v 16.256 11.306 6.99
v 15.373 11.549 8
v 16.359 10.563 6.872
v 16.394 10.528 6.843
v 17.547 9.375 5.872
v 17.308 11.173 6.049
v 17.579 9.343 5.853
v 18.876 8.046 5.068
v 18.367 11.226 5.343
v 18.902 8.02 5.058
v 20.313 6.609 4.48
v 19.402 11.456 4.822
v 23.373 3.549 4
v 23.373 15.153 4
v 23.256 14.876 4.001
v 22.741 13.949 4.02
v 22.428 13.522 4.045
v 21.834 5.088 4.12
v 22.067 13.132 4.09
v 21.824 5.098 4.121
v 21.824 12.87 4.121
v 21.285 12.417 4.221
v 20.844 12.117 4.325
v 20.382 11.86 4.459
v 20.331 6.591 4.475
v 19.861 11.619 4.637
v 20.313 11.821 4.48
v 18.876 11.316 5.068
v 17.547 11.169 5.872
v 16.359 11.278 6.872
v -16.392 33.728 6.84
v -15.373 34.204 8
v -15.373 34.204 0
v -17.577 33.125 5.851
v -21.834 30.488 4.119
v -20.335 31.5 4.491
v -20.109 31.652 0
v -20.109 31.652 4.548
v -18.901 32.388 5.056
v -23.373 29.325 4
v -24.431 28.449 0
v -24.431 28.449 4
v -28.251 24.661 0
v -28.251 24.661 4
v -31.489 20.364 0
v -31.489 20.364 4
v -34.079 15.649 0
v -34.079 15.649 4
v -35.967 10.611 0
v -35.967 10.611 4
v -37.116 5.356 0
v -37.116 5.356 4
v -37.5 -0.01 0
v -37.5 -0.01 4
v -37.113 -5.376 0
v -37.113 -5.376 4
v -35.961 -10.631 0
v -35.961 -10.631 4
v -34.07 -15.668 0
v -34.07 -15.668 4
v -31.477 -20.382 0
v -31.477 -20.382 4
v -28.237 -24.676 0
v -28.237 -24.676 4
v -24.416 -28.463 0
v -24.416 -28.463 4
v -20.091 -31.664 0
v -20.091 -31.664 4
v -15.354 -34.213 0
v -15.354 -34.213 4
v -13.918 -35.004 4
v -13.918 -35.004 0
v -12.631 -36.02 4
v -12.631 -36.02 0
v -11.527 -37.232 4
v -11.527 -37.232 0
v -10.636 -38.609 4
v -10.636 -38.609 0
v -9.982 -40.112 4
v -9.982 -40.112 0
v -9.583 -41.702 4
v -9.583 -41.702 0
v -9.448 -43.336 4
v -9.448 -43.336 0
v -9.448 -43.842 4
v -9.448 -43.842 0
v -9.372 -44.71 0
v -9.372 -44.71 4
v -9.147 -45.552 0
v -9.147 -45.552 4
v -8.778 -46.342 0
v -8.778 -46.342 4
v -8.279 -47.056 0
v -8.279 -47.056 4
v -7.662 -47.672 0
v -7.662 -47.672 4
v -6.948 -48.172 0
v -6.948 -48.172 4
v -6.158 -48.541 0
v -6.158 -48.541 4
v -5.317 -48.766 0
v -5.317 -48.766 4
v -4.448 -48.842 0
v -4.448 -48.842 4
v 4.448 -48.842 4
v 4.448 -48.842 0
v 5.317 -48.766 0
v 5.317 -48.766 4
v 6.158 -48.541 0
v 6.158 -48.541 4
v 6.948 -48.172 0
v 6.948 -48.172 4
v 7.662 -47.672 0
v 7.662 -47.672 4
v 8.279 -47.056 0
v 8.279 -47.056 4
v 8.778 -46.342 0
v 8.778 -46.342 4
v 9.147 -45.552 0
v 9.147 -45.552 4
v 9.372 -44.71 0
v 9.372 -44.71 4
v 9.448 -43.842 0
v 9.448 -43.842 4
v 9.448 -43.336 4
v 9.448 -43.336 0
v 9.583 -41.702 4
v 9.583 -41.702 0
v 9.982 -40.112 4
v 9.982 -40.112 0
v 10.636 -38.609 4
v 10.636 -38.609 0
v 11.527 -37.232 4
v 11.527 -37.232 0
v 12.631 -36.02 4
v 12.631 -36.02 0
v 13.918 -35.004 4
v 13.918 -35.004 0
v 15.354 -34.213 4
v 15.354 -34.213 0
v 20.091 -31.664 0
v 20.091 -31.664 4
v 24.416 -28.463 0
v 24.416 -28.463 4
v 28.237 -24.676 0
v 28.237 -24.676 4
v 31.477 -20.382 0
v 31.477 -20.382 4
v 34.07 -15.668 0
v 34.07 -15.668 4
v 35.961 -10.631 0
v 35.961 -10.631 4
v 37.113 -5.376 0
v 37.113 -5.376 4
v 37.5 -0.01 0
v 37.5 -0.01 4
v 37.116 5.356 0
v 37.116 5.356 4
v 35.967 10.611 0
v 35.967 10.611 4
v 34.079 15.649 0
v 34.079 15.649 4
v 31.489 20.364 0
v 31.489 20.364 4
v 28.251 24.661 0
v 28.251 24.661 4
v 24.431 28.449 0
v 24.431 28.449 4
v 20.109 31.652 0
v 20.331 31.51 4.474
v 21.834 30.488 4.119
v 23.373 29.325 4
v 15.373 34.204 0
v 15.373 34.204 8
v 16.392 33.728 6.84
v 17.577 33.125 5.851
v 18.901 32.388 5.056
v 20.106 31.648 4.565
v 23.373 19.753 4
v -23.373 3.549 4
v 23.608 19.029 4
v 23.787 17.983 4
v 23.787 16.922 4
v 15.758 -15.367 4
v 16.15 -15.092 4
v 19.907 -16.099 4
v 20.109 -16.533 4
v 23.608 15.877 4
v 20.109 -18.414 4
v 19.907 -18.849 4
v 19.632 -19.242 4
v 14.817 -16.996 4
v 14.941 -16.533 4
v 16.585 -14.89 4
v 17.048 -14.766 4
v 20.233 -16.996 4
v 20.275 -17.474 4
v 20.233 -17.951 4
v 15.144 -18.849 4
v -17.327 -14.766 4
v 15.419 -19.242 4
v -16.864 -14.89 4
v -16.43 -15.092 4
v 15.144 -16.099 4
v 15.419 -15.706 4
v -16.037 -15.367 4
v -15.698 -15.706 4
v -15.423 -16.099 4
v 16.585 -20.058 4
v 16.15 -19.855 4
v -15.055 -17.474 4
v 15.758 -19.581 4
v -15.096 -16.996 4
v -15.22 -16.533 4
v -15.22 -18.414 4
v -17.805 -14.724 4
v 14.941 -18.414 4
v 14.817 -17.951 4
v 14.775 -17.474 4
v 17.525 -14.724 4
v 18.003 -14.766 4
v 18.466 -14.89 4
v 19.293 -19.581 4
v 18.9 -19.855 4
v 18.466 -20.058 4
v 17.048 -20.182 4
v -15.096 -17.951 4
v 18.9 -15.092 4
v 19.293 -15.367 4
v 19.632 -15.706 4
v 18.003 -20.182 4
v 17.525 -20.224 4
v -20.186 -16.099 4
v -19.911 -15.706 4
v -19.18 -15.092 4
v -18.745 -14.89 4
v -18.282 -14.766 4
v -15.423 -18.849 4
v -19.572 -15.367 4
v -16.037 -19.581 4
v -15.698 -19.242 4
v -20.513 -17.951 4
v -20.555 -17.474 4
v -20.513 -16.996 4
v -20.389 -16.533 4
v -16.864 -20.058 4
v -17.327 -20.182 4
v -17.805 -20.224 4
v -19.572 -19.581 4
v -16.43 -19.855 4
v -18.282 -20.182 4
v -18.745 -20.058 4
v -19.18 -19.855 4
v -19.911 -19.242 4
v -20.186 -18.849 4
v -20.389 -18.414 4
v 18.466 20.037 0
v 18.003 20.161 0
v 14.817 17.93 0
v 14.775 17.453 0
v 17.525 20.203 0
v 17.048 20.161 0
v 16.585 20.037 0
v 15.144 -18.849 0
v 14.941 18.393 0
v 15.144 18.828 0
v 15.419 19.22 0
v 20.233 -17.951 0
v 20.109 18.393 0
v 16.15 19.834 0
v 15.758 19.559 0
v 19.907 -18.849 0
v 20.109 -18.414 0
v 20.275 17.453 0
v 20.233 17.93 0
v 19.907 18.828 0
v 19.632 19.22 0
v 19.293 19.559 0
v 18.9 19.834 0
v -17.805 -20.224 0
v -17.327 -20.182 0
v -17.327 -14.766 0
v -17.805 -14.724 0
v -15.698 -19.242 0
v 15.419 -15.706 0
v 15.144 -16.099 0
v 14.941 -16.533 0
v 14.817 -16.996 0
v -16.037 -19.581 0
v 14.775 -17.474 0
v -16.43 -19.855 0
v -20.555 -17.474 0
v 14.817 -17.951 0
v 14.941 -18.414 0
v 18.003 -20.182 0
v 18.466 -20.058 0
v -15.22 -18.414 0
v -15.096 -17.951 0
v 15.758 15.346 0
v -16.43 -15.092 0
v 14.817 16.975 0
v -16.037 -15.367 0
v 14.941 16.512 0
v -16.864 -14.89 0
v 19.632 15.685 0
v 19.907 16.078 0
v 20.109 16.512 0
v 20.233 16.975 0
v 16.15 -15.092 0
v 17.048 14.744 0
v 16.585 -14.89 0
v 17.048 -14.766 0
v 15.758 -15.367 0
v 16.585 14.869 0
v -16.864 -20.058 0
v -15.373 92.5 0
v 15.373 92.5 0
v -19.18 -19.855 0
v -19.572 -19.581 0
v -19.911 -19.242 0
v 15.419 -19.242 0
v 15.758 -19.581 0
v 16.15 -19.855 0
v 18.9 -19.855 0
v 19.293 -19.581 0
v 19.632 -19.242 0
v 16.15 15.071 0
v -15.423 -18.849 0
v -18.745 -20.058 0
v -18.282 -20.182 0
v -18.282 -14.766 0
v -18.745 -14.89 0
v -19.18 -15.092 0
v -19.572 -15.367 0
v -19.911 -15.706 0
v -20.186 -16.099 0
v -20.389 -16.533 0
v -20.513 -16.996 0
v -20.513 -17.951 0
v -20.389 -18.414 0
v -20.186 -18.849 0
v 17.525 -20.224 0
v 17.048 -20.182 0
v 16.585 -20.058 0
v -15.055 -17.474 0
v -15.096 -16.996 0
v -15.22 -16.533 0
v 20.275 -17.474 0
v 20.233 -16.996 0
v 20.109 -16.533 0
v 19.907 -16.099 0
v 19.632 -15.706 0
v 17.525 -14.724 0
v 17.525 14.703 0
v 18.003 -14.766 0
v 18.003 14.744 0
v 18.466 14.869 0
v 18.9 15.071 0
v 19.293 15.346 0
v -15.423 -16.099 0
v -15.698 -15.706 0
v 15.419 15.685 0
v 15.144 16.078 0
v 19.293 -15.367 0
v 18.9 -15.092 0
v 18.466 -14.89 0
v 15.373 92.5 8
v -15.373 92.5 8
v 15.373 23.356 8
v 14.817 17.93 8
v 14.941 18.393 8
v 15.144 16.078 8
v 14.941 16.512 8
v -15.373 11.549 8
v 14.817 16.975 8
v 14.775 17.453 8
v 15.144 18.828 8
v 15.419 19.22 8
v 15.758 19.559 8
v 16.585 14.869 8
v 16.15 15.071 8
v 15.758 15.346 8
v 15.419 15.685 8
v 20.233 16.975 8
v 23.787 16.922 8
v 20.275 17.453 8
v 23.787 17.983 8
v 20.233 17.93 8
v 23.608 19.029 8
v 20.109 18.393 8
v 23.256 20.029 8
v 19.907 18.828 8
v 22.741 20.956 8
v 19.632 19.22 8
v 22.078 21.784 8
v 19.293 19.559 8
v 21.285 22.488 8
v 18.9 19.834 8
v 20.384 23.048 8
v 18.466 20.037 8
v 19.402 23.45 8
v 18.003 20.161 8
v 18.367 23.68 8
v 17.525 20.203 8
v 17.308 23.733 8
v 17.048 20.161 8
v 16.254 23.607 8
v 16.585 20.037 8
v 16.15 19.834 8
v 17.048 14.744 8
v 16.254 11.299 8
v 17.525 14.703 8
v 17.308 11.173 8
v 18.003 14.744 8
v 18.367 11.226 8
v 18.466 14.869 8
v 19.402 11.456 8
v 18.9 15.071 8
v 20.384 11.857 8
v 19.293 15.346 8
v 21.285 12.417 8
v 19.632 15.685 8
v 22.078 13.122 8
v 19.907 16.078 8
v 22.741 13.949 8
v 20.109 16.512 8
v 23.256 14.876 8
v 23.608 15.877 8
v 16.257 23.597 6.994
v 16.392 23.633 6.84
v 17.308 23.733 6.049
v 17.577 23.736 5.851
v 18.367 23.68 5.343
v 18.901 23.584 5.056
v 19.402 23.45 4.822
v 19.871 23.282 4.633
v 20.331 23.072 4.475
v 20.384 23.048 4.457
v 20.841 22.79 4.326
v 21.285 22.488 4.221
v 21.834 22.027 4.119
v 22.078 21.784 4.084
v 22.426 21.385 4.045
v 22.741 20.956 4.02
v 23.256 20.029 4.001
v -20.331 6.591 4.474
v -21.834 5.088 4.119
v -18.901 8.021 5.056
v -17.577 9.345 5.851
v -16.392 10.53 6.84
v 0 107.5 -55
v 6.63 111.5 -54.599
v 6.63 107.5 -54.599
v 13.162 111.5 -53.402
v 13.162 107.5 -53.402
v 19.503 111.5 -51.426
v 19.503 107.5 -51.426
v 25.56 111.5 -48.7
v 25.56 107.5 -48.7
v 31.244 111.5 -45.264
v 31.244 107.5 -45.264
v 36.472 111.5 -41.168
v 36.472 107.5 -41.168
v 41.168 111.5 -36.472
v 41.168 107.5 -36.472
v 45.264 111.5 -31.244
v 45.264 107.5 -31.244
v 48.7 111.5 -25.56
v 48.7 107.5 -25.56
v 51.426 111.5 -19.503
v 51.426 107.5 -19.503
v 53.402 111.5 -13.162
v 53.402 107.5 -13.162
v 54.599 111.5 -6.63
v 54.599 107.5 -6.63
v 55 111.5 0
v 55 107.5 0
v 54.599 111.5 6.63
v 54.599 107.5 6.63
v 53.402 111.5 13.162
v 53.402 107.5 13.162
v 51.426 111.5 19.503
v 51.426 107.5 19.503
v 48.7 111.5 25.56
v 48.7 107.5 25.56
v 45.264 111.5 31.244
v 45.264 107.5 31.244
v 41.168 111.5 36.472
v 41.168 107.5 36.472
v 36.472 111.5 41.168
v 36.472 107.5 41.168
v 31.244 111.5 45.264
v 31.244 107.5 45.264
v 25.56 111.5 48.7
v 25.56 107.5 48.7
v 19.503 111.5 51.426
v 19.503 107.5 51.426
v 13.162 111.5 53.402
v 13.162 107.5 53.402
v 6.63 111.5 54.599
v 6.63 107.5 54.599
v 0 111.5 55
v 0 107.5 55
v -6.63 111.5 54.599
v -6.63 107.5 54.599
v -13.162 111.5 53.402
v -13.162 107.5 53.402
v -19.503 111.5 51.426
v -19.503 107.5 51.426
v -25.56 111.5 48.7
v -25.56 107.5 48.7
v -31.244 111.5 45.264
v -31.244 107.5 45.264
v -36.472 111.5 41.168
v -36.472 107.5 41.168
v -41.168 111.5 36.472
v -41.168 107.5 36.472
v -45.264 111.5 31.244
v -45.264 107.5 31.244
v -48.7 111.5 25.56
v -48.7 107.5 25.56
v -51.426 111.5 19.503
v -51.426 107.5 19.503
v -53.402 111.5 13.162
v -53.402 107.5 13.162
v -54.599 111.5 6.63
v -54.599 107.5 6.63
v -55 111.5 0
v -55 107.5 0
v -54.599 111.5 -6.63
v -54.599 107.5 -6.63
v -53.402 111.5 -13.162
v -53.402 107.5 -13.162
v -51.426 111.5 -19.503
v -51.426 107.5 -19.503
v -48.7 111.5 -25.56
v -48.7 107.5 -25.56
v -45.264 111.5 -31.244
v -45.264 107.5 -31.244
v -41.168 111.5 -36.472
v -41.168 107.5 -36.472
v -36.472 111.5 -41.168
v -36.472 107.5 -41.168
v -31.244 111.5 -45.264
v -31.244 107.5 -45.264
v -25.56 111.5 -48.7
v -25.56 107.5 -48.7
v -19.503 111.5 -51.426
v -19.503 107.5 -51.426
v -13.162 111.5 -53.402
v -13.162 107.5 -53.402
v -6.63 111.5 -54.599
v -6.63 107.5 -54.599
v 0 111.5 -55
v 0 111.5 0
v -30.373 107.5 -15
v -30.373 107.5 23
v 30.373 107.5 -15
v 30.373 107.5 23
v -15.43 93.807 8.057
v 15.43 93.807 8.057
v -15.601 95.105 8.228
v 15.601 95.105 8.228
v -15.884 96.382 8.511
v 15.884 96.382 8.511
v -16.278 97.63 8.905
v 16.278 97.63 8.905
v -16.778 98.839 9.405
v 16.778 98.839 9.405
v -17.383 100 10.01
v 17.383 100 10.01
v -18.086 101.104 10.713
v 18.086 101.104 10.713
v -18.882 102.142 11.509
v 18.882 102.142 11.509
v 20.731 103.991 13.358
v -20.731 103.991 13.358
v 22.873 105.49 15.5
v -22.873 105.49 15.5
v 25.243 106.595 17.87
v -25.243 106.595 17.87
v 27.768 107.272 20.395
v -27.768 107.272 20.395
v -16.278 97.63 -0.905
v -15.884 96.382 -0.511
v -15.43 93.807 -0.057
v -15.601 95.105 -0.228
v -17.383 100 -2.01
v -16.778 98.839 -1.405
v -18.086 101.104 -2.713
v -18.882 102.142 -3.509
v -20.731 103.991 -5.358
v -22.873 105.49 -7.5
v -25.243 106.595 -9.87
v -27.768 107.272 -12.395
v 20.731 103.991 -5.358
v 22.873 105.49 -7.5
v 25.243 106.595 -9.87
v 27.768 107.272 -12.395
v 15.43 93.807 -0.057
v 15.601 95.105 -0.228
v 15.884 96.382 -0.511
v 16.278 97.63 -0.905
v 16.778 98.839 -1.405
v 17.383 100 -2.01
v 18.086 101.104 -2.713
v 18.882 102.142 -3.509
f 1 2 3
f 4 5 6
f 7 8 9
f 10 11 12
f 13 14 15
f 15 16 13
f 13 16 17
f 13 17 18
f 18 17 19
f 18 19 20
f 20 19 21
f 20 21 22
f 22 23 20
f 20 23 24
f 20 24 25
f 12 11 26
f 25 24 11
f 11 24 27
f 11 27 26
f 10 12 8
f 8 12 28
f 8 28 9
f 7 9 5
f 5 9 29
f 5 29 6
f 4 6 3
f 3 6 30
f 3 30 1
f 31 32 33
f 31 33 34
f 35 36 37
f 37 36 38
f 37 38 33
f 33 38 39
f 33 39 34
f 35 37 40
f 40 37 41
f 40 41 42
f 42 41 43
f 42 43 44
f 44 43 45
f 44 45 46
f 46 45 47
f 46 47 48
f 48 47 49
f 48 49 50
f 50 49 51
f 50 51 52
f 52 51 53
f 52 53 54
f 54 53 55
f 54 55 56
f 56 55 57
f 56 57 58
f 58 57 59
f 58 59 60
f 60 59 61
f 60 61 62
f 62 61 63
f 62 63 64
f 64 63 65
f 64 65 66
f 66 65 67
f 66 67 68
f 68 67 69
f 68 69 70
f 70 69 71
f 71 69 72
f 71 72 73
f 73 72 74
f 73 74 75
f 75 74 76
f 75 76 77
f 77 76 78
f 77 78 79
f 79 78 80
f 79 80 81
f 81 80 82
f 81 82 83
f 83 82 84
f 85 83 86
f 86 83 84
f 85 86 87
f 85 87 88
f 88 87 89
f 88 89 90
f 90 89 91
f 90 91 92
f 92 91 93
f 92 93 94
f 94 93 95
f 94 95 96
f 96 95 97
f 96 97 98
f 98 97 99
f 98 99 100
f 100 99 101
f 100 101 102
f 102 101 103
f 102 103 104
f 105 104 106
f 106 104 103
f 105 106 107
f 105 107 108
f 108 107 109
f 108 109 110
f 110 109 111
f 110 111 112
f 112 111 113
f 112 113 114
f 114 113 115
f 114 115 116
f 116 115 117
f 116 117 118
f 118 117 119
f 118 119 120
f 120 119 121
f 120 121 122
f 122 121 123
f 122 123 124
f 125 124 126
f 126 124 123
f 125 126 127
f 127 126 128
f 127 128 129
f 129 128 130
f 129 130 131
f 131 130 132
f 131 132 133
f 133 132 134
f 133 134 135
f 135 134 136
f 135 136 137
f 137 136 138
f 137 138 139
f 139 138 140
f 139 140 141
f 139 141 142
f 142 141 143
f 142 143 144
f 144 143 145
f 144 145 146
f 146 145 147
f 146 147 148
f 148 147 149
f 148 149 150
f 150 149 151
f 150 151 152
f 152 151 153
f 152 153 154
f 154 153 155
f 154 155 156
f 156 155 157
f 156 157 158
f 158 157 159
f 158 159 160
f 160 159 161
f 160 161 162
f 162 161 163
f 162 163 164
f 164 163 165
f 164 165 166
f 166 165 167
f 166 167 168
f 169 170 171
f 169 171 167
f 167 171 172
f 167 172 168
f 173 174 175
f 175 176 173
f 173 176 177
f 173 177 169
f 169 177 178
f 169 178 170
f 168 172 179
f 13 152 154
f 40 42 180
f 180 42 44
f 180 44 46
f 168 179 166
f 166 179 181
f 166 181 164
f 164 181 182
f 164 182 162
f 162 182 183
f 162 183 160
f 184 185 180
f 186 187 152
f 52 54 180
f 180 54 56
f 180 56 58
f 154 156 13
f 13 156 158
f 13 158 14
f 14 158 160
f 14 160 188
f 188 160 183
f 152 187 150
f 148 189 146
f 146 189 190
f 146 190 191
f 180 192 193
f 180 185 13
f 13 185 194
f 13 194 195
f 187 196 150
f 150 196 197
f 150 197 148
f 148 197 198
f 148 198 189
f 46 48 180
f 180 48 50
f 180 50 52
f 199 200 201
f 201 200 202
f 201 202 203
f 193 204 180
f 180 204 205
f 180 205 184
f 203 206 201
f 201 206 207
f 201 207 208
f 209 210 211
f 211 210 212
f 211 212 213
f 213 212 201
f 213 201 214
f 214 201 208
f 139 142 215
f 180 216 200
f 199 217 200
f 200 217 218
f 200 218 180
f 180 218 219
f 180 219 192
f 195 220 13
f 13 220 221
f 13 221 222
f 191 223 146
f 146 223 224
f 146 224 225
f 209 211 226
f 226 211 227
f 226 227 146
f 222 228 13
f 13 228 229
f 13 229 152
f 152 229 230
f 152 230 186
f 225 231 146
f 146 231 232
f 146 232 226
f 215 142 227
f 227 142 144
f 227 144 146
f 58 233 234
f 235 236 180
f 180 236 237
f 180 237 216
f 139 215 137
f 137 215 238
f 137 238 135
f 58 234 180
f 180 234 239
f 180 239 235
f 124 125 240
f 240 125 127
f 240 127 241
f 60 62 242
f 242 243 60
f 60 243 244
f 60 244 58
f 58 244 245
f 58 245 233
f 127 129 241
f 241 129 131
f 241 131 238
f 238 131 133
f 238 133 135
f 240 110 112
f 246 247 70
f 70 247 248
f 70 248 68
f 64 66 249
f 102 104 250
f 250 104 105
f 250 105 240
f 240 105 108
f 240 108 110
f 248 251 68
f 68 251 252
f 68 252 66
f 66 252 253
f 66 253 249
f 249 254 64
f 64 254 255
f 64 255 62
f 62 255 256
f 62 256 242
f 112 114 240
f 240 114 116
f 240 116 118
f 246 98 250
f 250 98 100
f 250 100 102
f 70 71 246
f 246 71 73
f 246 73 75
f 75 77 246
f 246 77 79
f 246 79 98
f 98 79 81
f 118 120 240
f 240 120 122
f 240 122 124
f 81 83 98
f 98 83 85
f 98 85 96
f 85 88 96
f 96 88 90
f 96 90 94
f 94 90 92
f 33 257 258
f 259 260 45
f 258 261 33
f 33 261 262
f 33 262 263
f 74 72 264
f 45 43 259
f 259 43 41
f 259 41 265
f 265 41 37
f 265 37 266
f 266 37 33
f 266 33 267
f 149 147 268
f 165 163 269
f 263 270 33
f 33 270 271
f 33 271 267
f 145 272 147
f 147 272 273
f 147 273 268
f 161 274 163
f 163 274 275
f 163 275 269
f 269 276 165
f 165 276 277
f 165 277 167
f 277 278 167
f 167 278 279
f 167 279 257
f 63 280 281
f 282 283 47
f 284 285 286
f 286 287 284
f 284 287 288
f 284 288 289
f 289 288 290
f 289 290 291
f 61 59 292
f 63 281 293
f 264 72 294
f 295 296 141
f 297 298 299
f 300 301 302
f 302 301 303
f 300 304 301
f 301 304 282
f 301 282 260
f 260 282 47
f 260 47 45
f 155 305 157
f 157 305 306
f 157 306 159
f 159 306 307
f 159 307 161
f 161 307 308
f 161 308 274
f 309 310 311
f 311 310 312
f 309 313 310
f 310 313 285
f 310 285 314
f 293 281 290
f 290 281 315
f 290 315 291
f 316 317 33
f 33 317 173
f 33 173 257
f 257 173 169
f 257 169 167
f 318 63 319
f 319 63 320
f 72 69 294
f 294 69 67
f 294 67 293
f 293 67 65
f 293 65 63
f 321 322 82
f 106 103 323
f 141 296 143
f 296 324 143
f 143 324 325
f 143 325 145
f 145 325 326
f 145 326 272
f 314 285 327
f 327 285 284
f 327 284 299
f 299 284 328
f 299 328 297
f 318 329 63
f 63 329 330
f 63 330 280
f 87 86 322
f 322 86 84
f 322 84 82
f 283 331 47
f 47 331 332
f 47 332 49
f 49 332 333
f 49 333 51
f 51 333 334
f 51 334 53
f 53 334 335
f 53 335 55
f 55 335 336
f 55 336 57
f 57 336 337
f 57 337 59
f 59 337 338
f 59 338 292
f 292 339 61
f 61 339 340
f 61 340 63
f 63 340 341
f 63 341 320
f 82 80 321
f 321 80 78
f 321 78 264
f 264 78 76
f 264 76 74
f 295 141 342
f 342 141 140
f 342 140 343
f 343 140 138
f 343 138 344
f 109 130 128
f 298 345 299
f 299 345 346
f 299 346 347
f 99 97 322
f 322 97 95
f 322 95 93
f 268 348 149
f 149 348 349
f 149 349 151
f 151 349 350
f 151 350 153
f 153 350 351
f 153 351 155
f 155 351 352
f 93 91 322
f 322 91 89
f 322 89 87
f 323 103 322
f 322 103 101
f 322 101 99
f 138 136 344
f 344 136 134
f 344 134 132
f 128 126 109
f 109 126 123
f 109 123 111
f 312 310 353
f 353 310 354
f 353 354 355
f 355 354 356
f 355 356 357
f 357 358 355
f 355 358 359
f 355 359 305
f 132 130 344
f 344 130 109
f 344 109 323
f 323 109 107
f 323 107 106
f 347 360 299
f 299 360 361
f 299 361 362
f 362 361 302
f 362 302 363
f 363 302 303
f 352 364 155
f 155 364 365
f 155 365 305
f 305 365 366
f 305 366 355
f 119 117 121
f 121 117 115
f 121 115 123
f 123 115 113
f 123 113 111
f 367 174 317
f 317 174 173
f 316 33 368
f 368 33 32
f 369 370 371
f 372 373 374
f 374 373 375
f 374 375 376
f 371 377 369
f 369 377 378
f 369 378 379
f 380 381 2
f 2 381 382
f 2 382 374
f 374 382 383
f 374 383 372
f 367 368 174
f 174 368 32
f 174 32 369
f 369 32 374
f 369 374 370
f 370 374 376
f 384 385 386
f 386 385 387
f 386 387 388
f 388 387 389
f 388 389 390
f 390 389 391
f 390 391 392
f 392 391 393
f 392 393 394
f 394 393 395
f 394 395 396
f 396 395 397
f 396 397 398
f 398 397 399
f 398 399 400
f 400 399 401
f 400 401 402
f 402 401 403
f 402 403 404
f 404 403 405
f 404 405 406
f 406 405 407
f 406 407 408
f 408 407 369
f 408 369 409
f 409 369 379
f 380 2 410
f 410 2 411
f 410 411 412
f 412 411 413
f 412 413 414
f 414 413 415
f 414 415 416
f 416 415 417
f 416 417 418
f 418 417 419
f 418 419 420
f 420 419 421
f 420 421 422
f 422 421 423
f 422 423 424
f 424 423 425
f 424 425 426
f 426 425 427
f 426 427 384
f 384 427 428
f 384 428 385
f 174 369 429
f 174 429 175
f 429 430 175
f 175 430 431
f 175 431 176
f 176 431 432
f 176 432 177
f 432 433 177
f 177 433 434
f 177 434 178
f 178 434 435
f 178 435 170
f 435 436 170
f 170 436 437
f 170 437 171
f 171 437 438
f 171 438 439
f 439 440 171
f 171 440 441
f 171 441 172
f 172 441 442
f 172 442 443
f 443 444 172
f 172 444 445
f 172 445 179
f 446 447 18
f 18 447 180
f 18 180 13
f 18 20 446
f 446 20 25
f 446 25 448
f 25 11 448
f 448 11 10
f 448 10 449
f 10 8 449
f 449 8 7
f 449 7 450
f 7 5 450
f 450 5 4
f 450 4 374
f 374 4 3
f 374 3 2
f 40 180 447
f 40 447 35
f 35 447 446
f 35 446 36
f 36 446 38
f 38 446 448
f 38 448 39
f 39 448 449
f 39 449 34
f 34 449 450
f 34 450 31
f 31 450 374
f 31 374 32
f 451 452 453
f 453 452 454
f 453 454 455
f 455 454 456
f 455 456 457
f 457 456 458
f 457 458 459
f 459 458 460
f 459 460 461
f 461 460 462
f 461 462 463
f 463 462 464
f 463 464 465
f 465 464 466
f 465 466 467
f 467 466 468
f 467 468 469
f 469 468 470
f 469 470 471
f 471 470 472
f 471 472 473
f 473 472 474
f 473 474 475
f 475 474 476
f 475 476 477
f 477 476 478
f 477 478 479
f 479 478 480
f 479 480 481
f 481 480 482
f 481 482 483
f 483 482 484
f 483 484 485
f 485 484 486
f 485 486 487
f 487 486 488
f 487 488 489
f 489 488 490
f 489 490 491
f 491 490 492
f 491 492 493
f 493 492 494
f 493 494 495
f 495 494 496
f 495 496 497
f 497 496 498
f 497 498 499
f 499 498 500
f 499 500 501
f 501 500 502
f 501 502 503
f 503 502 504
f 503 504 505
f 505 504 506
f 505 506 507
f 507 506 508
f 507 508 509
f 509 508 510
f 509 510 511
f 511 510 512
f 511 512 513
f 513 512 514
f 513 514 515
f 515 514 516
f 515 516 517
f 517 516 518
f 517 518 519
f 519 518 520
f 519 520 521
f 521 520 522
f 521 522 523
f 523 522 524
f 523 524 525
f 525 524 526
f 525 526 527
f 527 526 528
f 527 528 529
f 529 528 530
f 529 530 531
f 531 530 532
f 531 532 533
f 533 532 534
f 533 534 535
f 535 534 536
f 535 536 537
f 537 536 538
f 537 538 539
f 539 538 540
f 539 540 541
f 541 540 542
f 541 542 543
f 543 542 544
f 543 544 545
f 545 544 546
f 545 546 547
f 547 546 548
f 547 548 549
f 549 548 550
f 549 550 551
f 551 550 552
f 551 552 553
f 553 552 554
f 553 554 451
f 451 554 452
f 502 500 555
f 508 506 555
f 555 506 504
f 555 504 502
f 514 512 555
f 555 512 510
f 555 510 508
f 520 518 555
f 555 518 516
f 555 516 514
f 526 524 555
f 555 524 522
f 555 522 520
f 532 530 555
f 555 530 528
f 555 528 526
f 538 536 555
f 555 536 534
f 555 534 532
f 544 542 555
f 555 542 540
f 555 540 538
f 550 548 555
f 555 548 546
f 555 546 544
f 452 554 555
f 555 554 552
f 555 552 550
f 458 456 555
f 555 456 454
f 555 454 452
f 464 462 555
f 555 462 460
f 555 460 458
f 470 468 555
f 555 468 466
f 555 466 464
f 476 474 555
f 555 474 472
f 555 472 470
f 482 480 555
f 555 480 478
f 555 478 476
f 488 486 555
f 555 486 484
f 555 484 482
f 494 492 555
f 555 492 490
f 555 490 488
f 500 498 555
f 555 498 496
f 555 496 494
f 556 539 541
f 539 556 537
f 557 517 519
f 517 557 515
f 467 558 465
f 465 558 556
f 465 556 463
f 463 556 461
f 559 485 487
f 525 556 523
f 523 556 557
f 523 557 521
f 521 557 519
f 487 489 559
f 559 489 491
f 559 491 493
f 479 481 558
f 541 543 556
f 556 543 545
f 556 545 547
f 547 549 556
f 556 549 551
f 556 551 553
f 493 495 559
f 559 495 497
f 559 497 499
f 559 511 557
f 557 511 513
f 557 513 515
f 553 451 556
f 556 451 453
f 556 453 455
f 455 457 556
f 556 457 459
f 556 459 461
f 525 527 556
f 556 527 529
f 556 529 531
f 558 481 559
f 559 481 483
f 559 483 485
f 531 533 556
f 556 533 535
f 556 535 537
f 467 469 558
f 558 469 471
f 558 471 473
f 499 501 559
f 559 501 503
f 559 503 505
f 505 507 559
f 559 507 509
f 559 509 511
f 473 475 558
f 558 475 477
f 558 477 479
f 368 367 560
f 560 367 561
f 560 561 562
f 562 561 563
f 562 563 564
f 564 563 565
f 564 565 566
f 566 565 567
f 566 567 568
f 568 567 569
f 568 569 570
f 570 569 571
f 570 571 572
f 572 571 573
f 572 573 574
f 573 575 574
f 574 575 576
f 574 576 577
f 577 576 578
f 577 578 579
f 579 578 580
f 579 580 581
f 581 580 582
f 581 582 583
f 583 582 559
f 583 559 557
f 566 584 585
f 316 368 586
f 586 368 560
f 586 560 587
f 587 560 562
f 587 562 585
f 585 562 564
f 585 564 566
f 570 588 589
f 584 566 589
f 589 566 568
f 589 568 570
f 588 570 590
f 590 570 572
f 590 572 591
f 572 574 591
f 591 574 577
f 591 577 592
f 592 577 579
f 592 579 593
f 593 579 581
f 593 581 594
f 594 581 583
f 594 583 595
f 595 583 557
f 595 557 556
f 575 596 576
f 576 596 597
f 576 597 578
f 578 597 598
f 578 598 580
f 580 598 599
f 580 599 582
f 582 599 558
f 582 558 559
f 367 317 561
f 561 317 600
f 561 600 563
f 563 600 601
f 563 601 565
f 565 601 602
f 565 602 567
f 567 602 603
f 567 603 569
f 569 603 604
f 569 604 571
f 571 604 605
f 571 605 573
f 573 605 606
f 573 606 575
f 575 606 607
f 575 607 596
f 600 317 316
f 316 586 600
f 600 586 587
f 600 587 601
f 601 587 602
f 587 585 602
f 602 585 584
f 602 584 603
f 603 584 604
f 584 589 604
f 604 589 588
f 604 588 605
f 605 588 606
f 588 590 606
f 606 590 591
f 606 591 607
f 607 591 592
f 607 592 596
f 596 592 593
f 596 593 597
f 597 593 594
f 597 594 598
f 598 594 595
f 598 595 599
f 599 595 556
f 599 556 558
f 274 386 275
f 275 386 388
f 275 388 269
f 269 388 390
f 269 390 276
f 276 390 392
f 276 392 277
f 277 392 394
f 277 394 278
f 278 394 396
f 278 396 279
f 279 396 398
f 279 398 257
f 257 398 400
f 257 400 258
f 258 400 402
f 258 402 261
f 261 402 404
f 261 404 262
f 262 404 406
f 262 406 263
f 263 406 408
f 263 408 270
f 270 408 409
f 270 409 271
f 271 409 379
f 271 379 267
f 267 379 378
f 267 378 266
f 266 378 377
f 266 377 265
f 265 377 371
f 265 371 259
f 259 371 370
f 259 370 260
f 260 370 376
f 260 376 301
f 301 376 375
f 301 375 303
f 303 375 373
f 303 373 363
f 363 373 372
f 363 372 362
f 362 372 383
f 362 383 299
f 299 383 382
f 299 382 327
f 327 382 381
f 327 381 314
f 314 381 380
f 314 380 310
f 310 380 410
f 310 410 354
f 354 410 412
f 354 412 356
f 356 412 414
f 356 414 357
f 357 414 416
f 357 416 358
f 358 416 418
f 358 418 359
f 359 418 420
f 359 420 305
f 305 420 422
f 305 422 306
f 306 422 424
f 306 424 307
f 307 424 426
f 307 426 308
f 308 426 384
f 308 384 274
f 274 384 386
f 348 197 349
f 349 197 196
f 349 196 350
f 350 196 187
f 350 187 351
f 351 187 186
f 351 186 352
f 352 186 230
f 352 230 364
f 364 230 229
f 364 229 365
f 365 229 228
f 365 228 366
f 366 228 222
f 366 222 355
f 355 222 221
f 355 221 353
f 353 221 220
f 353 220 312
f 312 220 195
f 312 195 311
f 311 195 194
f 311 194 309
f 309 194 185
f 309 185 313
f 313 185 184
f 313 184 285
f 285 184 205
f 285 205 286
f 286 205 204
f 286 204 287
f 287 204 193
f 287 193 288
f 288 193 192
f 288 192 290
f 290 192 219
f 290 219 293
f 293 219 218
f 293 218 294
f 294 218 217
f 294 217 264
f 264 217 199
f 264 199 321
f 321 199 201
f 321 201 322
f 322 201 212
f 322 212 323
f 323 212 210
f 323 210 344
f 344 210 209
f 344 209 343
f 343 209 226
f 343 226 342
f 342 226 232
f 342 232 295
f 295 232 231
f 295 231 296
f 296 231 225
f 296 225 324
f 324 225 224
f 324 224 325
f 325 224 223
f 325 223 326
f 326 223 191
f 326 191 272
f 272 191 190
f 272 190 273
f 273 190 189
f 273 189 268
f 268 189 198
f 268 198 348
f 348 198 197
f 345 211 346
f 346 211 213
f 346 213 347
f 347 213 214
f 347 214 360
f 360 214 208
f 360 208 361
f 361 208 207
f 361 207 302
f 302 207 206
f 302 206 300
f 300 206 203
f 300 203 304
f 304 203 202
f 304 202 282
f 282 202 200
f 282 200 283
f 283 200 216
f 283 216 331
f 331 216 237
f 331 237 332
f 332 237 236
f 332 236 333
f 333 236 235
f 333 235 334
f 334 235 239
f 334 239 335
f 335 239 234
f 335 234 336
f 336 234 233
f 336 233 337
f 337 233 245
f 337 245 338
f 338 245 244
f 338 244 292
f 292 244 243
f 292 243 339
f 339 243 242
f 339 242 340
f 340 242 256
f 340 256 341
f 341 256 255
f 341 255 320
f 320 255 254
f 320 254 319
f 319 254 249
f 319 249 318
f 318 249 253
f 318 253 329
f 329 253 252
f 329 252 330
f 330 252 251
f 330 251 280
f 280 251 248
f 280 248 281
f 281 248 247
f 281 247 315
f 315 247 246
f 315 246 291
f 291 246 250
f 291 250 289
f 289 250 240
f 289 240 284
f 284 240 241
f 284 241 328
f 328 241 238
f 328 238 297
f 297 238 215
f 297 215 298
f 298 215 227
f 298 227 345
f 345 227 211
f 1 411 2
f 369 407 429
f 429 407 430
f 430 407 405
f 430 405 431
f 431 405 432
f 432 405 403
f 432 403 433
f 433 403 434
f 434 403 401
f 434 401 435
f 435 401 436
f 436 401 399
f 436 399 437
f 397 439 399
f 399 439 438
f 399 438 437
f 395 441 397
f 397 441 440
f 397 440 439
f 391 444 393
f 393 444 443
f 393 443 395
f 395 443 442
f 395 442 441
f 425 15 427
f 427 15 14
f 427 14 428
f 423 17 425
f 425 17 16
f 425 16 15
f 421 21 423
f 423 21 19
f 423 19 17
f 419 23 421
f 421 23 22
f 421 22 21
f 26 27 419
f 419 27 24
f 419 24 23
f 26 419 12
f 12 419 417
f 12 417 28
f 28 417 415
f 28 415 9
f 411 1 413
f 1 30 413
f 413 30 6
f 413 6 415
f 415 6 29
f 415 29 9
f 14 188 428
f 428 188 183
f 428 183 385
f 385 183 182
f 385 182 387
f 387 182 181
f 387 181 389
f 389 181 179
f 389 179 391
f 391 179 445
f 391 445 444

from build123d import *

# Parameters (mm, degrees)
BOSS_EXTRUDE2_DEPTH             = 4
BOSS_EXTRUDE3_DEPTH             = 4
BOSS_EXTRUDE3_DIRECTION_2_REACH = 63.707
FILLET1_R                       = 10
SKETCH4_R                       = 55
BOSS_EXTRUDE4_DEPTH             = 4
FILLET2_R                       = 15
CUT_EXTRUDE1_DEPTH              = 136.949439131
CUT_EXTRUDE1_DEPTH_BACK         = 136.949439131
SKETCH2_4_R                     = 2.75
BOSS_EXTRUDE5_START             = -4
SKETCH5_R                       = 6.283783871
SKETCH5_R_2                     = 2.75
BOSS_EXTRUDE5_DEPTH             = 4


with BuildPart() as part:
    # Sketch2 → Boss-Extrude2 (new body)
    with BuildSketch(Plane.XY):
        with BuildLine():
            Line((-9.448282852, -43.336062282), (-9.448282852, -43.842083491))
            ThreePointArc((-9.448282852, -43.842083491), (-7.983816758, -47.377617397), (-4.448282852, -48.842083491))
            Line((-4.448282852, -48.842083491), (4.448282796, -48.842083491))
            ThreePointArc((4.448282796, -48.842083491), (7.983816702, -47.377617397), (9.448282796, -43.842083491))
            Line((9.448282796, -43.842083491), (9.448282796, -43.336062307))
            ThreePointArc((9.448282796, -43.336062307), (11.053529874, -37.902083712), (15.353907471, -34.212680769))
            ThreePointArc((15.353907471, -34.212680769), (2.4e-08, 37.5), (-15.353907514, -34.212680749))
            ThreePointArc((-15.353907514, -34.212680749), (-11.053529926, -37.902083692), (-9.448282852, -43.336062282))
        make_face()
    extrude(amount=BOSS_EXTRUDE2_DEPTH)

    # Sketch3 → Boss-Extrude3 (add)
    with BuildSketch(Plane.XY.offset(4)):
        with BuildLine():
            Line((-15.37292341, 11.548994525), (15.372923459, 11.548994525))
            Line((15.372923459, 11.548994525), (15.372923459, 34.204140456))
            ThreePointArc((15.372923459, 34.204140456), (2.6e-08, 37.5), (-15.37292341, 34.204140478))
            Line((-15.37292341, 34.204140478), (-15.37292341, 11.548994525))
        make_face()
        with BuildLine():
            ThreePointArc((-15.37292341, 34.204140478), (2.6e-08, 37.5), (15.372923459, 34.204140456))
            Line((15.372923459, 34.204140456), (15.372923459, 107.5))
            Line((15.372923459, 107.5), (-15.37292341, 107.5))
            Line((-15.37292341, 107.5), (-15.37292341, 34.204140478))
        make_face()
    extrude(amount=BOSS_EXTRUDE3_DEPTH)

    # Boss-Extrude3 direction 2: up to this face of the body (flat: up to its plane)
    boss_extrude3_direction_2_end = Plane(part.part.faces().sort_by_distance((-1e-09, -2.077742583, 0))[0])
    # Sketch3 → Boss-Extrude3 direction 2 (add, up to the picked face)
    with BuildSketch(Plane.XY.offset(4), mode=Mode.PRIVATE) as boss_extrude3_direction_2_sk1:
        with BuildLine():
            Line((-15.37292341, 11.548994525), (15.372923459, 11.548994525))
            Line((15.372923459, 11.548994525), (15.372923459, 34.204140456))
            ThreePointArc((15.372923459, 34.204140456), (2.6e-08, 37.5), (-15.37292341, 34.204140478))
            Line((-15.37292341, 34.204140478), (-15.37292341, 11.548994525))
        make_face()
    boss_extrude3_direction_2_tool1 = split(extrude(boss_extrude3_direction_2_sk1.sketch, amount=-BOSS_EXTRUDE3_DIRECTION_2_REACH, mode=Mode.PRIVATE), bisect_by=boss_extrude3_direction_2_end, keep=Keep.BOTH, mode=Mode.PRIVATE)
    # Sketch3 → Boss-Extrude3 direction 2 (add, up to the picked face)
    with BuildSketch(Plane.XY.offset(4), mode=Mode.PRIVATE) as boss_extrude3_direction_2_sk2:
        with BuildLine():
            ThreePointArc((-15.37292341, 34.204140478), (2.6e-08, 37.5), (15.372923459, 34.204140456))
            Line((15.372923459, 34.204140456), (15.372923459, 107.5))
            Line((15.372923459, 107.5), (-15.37292341, 107.5))
            Line((-15.37292341, 107.5), (-15.37292341, 34.204140478))
        make_face()
    boss_extrude3_direction_2_tool2 = split(extrude(boss_extrude3_direction_2_sk2.sketch, amount=-BOSS_EXTRUDE3_DIRECTION_2_REACH, mode=Mode.PRIVATE), bisect_by=boss_extrude3_direction_2_end, keep=Keep.BOTH, mode=Mode.PRIVATE)
    add(boss_extrude3_direction_2_tool1.solids().sort_by(Axis((0, 24.004369, 4), (0, 0, -1)))[0])
    add(boss_extrude3_direction_2_tool2.solids().sort_by(Axis((0, 71.954024, 4), (0, 0, -1)))[0])

    # Fillet1
    # the kernel refuses this fillet: 10 mm, written as the material it adds along each edge
    with BuildSketch(Plane(origin=(-15.37292341, 54.204140478, 4), x_dir=(-1, 0, 0), z_dir=(0, -1, 0))) as fillet1_piece_1_section:
        with BuildLine():
            CenterArc((8, -10), FILLET1_R, 90, 53.130102354)
            Line((0, -4), (-0.16, -3.88))
            ThreePointArc((-0.16, -3.88), (-0.2, -2), (-0.2, 0))
            Line((-0.2, 0), (0, 0.2))
            Line((0, 0.2), (8, 0.2))
            Line((8, 0.2), (8, 0))
        make_face()
    fillet1_piece_1 = extrude(amount=42.655145953, mode=Mode.PRIVATE)
    fillet1_piece_1 = fillet1_piece_1 & Plane(origin=(0, 0, 5.050776903), x_dir=(0.4094375325494367, -0.9123381538332315, 0), z_dir=(0, 0, -1)) * Cylinder(37.5, 118, mode=Mode.PRIVATE)
    add(fillet1_piece_1)
    with BuildSketch(Plane(origin=(-15.37292341, 11.548994525, 4), x_dir=(0, -1, 0), z_dir=(1, 0, 0))) as fillet1_piece_2:
        with BuildLine():
            CenterArc((8, -10), FILLET1_R, 90, 53.130102354)
            Line((0, -4), (-0.16, -3.88))
            ThreePointArc((-0.16, -3.88), (-0.2, -2), (-0.2, 0))
            Line((-0.2, 0), (0, 0.2))
            Line((0, 0.2), (8, 0.2))
            Line((8, 0.2), (8, 0))
        make_face()
    extrude(amount=30.745846869)
    with BuildSketch(Plane(origin=(15.372923459, 54.204140456, 4), x_dir=(1, 0, 0), z_dir=(0, -1, 0))) as fillet1_piece_3_section:
        with BuildLine():
            CenterArc((8, 10), FILLET1_R, 216.869897646, 53.130102354)
            Line((0, 4), (-0.16, 3.88))
            ThreePointArc((-0.16, 3.88), (-0.2, 2), (-0.2, 0))
            Line((-0.2, 0), (0, -0.2))
            Line((0, -0.2), (8, -0.2))
            Line((8, -0.2), (8, 0))
        make_face()
    fillet1_piece_3 = extrude(amount=42.655145931, mode=Mode.PRIVATE)
    fillet1_piece_3 = fillet1_piece_3 & Plane(origin=(0, 0, 5.050777143), x_dir=(0.4094375325494367, -0.9123381538332315, 0), z_dir=(0, 0, -1)) * Cylinder(37.5, 118, mode=Mode.PRIVATE)
    add(fillet1_piece_3)
    with BuildSketch(Plane(origin=(-15.37292341, 54.204140478, 4), x_dir=(-1, 0, 0), z_dir=(0, -1, 0))) as fillet1_piece_4a_section:
        with BuildLine():
            CenterArc((8, -10), FILLET1_R, 90, 53.130102354)
            Line((0, -4), (-0.16, -3.88))
            ThreePointArc((-0.16, -3.88), (-0.2, -2), (-0.2, 0))
            Line((-0.2, 0), (0, 0.2))
            Line((0, 0.2), (8, 0.2))
            Line((8, 0.2), (8, 0))
        make_face()
    fillet1_piece_4a = extrude(amount=62.655145953, mode=Mode.PRIVATE)
    fillet1_piece_4a = split(fillet1_piece_4a, bisect_by=Plane(origin=(-17.431757525, 11.548994525, 5.023885124), z_dir=(0, -1, 0)), keep=Keep.TOP, mode=Mode.PRIVATE)
    with BuildSketch(Plane(origin=(-35.37292341, 11.548994525, 4), x_dir=(0, -1, 0), z_dir=(1, 0, 0))) as fillet1_piece_4b_section:
        with BuildLine():
            CenterArc((8, -10), FILLET1_R, 90, 53.130102354)
            Line((0, -4), (-0.16, -3.88))
            ThreePointArc((-0.16, -3.88), (-0.2, -2), (-0.2, 0))
            Line((-0.2, 0), (0, 0.2))
            Line((0, 0.2), (8, 0.2))
            Line((8, 0.2), (8, 0))
        make_face()
    fillet1_piece_4b = extrude(amount=50.745846869, mode=Mode.PRIVATE)
    fillet1_piece_4b = split(fillet1_piece_4b, bisect_by=Plane(origin=(-15.37292341, 9.490160411, 5.023885124), z_dir=(-1, 0, 0)), keep=Keep.TOP, mode=Mode.PRIVATE)
    fillet1_piece_4 = fillet1_piece_4a & fillet1_piece_4b
    add(fillet1_piece_4)
    with BuildSketch(Plane(origin=(-15.37292341, 11.548994525, 4), x_dir=(0, -1, 0), z_dir=(1, 0, 0))) as fillet1_piece_5a_section:
        with BuildLine():
            CenterArc((8, -10), FILLET1_R, 90, 53.130102354)
            Line((0, -4), (-0.16, -3.88))
            ThreePointArc((-0.16, -3.88), (-0.2, -2), (-0.2, 0))
            Line((-0.2, 0), (0, 0.2))
            Line((0, 0.2), (8, 0.2))
            Line((8, 0.2), (8, 0))
        make_face()
    fillet1_piece_5a = extrude(amount=50.745846869, mode=Mode.PRIVATE)
    fillet1_piece_5a = split(fillet1_piece_5a, bisect_by=Plane(origin=(15.372923459, 9.490160411, 5.023885124), z_dir=(1, 0, 0)), keep=Keep.TOP, mode=Mode.PRIVATE)
    with BuildSketch(Plane(origin=(15.372923459, 54.204140456, 4), x_dir=(1, 0, 0), z_dir=(0, -1, 0))) as fillet1_piece_5b_section:
        with BuildLine():
            CenterArc((8, 10), FILLET1_R, 216.869897646, 53.130102354)
            Line((0, 4), (-0.16, 3.88))
            ThreePointArc((-0.16, 3.88), (-0.2, 2), (-0.2, 0))
            Line((-0.2, 0), (0, -0.2))
            Line((0, -0.2), (8, -0.2))
            Line((8, -0.2), (8, 0))
        make_face()
    fillet1_piece_5b = extrude(amount=62.655145931, mode=Mode.PRIVATE)
    fillet1_piece_5b = split(fillet1_piece_5b, bisect_by=Plane(origin=(17.431757573, 11.548994525, 5.023885124), z_dir=(0, -1, 0)), keep=Keep.TOP, mode=Mode.PRIVATE)
    fillet1_piece_5 = fillet1_piece_5a & fillet1_piece_5b
    add(fillet1_piece_5)

    # Sketch4 → Boss-Extrude4 (add)
    with BuildSketch(Plane(origin=(0, 107.5, 0), x_dir=(1, 0, 0), z_dir=(0, 1, 0))):
        with Locations(Location((0, 0, 0), (0, 0, 270))):
            Circle(SKETCH4_R)
    extrude(amount=BOSS_EXTRUDE4_DEPTH)

    # Fillet2
    fillet2_edges = [part.edges().sort_by_distance(p)[0] for p in [
        (15.372923459, 107.5, 4),
        (-15.37292341, 107.5, 4),
        (2.4e-08, 107.5, 0),
        (2.4e-08, 107.5, 8),
    ]]
    fillet(fillet2_edges, radius=FILLET2_R)

    # Sketch2<4> → Cut-Extrude1 (cut, two sides: drawn at the far end of the back side and taken through both)
    with BuildSketch(Plane.XY.offset(-CUT_EXTRUDE1_DEPTH_BACK)):
        with Locations((17.525184131, 17.452697917)):
            Circle(SKETCH2_4_R)
        with Locations((17.525184131, -17.473883919)):
            Circle(SKETCH2_4_R)
        with Locations((-17.804632122, -17.473883919)):
            Circle(SKETCH2_4_R)
    extrude(amount=CUT_EXTRUDE1_DEPTH + CUT_EXTRUDE1_DEPTH_BACK, mode=Mode.SUBTRACT)

    # Sketch5 → Boss-Extrude5 (add)
    with BuildSketch(Plane.XY.offset(8).offset(BOSS_EXTRUDE5_START)):
        with Locations((17.525184131, 17.452697917)):
            Circle(SKETCH5_R)
        with Locations((17.525184131, 17.452697917)):
            Circle(SKETCH5_R_2, mode=Mode.SUBTRACT)
    extrude(amount=BOSS_EXTRUDE5_DEPTH)


solid = part.part
